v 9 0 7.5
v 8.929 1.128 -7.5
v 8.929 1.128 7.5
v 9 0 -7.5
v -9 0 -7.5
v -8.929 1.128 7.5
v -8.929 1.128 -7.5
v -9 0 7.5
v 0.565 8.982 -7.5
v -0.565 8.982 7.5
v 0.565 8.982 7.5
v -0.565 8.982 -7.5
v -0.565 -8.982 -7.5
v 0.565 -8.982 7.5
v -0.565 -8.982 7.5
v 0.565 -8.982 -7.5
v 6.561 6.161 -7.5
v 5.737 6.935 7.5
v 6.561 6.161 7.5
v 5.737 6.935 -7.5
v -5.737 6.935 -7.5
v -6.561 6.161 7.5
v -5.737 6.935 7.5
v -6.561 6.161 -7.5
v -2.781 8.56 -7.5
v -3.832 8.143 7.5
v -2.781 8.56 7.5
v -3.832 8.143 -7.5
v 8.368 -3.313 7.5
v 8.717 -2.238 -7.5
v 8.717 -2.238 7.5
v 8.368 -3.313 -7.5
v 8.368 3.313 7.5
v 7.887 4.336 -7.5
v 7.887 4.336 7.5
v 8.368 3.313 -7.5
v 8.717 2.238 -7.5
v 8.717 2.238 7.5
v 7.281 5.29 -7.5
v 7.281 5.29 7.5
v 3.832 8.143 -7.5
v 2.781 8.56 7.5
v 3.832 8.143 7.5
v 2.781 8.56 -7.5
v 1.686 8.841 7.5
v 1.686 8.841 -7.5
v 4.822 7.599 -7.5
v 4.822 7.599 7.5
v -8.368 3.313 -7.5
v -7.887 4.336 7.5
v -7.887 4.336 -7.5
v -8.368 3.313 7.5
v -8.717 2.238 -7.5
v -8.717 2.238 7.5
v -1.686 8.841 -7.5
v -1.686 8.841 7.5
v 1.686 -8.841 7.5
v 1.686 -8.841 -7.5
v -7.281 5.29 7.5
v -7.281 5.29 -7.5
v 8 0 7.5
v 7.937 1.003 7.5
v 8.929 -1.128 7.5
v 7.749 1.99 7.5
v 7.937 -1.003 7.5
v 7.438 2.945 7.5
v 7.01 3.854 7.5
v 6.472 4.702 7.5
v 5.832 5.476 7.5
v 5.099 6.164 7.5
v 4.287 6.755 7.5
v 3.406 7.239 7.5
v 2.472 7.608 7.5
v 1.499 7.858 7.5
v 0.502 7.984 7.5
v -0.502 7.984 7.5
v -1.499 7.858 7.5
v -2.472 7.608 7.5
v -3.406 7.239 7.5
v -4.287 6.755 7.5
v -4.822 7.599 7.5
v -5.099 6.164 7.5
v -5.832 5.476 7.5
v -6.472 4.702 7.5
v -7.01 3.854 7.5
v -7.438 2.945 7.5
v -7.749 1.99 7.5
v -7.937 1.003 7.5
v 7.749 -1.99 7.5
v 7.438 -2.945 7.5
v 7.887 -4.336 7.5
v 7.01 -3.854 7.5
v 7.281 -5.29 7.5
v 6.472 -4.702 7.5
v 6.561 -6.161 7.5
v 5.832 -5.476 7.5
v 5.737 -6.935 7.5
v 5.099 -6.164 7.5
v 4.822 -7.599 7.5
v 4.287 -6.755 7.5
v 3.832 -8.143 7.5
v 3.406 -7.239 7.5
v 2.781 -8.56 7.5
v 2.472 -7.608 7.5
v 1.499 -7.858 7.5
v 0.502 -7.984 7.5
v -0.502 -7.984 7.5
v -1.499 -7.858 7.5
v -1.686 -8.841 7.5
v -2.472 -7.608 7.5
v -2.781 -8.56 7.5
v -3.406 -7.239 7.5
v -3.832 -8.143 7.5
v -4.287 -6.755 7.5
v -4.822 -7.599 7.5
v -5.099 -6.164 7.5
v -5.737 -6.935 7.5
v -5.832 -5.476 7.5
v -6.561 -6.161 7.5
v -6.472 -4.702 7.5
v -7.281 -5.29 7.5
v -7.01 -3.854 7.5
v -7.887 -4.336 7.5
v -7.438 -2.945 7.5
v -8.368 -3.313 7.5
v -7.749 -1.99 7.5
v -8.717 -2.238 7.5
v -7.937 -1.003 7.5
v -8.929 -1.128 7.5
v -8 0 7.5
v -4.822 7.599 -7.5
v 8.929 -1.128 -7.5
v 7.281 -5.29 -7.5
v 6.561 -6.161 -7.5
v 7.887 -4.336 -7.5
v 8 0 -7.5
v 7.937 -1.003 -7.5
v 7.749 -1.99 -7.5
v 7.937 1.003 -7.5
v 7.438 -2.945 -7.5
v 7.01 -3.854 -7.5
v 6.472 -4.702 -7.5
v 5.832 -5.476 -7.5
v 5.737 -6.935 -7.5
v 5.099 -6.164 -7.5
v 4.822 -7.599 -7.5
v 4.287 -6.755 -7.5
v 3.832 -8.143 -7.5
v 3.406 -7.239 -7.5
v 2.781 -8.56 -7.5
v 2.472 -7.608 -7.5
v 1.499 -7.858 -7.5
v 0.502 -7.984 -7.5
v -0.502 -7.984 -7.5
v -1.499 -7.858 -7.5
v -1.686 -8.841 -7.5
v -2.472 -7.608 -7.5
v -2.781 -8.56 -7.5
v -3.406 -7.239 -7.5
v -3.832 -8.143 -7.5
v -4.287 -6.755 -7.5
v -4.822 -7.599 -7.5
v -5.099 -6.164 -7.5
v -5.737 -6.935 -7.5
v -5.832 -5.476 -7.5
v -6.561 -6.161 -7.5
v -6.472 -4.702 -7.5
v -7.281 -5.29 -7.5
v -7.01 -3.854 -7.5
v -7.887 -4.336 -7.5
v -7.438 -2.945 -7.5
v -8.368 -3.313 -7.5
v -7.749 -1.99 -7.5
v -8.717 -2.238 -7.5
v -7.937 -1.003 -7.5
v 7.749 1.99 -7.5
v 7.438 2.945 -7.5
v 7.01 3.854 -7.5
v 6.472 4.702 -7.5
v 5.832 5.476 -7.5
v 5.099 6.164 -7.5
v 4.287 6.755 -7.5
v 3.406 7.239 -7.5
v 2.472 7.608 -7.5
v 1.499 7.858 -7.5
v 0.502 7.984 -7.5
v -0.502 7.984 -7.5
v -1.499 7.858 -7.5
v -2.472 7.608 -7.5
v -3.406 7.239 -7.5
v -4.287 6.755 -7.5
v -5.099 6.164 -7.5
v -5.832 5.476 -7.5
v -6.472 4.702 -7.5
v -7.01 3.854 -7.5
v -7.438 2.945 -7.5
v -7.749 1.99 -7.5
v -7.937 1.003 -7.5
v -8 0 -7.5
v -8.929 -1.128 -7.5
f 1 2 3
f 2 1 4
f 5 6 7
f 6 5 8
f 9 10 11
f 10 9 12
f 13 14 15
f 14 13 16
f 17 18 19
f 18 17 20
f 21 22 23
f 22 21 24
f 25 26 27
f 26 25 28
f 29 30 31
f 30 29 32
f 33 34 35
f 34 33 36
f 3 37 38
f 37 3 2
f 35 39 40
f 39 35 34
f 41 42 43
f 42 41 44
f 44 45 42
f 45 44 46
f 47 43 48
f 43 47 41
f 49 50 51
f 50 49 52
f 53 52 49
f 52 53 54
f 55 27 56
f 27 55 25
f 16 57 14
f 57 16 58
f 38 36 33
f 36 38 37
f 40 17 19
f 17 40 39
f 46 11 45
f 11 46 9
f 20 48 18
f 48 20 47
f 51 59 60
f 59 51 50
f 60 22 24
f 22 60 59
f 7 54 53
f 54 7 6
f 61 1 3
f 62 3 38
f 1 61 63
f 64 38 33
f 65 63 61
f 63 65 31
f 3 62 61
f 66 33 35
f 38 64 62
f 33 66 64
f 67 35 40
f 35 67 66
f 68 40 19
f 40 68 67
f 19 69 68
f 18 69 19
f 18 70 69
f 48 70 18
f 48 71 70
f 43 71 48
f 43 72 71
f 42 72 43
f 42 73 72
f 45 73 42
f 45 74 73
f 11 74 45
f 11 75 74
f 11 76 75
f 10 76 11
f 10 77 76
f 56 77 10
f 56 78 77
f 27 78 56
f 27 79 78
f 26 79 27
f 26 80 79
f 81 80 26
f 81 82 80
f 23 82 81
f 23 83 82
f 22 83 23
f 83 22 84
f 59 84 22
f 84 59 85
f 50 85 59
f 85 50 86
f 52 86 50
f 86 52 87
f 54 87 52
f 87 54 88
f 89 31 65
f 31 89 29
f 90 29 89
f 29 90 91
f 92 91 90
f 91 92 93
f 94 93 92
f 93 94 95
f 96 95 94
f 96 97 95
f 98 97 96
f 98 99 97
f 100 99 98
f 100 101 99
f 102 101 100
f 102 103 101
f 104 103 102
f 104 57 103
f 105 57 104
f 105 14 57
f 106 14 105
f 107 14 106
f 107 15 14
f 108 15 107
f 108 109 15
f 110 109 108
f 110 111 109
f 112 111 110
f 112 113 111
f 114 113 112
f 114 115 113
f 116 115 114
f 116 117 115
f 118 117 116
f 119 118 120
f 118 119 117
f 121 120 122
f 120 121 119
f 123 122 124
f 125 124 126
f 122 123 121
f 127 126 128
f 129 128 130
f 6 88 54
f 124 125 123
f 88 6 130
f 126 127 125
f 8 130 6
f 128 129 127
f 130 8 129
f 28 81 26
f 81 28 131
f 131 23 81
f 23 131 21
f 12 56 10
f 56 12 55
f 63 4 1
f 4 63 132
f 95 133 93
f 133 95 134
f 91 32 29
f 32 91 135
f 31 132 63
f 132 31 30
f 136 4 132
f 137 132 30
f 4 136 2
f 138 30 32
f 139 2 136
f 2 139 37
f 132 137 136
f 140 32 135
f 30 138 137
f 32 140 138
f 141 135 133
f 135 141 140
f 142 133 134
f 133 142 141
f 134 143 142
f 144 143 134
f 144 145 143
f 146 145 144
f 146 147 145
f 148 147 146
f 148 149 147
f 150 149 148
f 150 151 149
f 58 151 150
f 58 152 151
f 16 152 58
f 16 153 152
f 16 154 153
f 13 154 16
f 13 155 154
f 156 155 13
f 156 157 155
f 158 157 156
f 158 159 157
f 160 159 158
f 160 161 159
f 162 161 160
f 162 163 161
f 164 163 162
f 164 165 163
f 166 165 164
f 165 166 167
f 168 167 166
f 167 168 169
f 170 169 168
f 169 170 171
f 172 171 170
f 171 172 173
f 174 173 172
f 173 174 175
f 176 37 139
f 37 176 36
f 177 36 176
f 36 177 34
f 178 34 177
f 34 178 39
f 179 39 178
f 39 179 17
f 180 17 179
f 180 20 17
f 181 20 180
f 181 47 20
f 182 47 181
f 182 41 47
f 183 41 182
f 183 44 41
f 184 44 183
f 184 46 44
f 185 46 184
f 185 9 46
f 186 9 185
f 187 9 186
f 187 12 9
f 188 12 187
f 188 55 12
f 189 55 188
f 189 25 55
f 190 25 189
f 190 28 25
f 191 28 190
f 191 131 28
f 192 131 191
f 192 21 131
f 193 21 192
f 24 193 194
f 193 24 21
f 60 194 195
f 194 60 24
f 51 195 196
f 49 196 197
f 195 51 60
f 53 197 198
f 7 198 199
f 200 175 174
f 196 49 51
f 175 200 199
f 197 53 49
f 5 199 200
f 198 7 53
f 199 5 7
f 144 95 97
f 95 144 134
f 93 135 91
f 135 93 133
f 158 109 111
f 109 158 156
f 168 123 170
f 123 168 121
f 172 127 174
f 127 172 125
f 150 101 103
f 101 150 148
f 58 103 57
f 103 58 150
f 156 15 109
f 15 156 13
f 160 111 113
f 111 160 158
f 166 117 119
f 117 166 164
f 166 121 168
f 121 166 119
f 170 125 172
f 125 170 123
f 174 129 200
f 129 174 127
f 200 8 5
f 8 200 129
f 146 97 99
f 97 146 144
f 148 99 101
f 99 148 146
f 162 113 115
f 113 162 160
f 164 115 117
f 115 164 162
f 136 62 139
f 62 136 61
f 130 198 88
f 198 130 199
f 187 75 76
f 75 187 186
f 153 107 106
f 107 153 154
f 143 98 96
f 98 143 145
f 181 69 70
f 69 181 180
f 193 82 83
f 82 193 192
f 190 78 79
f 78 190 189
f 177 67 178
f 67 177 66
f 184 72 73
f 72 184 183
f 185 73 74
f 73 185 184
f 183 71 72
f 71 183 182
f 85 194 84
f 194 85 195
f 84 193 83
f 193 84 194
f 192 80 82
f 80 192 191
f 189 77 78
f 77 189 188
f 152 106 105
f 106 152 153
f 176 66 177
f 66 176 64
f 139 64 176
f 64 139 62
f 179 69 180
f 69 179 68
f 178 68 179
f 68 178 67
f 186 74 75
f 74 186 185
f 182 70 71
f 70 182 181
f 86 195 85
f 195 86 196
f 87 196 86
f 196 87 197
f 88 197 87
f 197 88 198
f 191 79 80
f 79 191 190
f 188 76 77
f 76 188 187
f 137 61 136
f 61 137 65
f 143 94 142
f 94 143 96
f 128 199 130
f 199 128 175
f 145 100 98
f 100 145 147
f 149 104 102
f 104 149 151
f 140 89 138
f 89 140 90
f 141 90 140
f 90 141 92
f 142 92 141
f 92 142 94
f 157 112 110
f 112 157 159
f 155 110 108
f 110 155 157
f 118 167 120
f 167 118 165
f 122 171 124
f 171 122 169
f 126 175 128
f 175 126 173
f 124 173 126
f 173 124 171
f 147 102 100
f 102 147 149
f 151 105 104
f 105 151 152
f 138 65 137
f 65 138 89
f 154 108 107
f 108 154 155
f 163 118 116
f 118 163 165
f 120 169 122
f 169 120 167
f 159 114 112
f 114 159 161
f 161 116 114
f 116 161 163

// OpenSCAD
$fn = 50;


difference() {
	union() {
		translate(v = [0, 0, -7.5000000000]) {
			cylinder(h = 15, r = 9.0000000000);
		}
	}
	union() {
		translate(v = [0, 0, -100.0000000000]) {
			cylinder(h = 200, r = 8);
		}
	}
}
